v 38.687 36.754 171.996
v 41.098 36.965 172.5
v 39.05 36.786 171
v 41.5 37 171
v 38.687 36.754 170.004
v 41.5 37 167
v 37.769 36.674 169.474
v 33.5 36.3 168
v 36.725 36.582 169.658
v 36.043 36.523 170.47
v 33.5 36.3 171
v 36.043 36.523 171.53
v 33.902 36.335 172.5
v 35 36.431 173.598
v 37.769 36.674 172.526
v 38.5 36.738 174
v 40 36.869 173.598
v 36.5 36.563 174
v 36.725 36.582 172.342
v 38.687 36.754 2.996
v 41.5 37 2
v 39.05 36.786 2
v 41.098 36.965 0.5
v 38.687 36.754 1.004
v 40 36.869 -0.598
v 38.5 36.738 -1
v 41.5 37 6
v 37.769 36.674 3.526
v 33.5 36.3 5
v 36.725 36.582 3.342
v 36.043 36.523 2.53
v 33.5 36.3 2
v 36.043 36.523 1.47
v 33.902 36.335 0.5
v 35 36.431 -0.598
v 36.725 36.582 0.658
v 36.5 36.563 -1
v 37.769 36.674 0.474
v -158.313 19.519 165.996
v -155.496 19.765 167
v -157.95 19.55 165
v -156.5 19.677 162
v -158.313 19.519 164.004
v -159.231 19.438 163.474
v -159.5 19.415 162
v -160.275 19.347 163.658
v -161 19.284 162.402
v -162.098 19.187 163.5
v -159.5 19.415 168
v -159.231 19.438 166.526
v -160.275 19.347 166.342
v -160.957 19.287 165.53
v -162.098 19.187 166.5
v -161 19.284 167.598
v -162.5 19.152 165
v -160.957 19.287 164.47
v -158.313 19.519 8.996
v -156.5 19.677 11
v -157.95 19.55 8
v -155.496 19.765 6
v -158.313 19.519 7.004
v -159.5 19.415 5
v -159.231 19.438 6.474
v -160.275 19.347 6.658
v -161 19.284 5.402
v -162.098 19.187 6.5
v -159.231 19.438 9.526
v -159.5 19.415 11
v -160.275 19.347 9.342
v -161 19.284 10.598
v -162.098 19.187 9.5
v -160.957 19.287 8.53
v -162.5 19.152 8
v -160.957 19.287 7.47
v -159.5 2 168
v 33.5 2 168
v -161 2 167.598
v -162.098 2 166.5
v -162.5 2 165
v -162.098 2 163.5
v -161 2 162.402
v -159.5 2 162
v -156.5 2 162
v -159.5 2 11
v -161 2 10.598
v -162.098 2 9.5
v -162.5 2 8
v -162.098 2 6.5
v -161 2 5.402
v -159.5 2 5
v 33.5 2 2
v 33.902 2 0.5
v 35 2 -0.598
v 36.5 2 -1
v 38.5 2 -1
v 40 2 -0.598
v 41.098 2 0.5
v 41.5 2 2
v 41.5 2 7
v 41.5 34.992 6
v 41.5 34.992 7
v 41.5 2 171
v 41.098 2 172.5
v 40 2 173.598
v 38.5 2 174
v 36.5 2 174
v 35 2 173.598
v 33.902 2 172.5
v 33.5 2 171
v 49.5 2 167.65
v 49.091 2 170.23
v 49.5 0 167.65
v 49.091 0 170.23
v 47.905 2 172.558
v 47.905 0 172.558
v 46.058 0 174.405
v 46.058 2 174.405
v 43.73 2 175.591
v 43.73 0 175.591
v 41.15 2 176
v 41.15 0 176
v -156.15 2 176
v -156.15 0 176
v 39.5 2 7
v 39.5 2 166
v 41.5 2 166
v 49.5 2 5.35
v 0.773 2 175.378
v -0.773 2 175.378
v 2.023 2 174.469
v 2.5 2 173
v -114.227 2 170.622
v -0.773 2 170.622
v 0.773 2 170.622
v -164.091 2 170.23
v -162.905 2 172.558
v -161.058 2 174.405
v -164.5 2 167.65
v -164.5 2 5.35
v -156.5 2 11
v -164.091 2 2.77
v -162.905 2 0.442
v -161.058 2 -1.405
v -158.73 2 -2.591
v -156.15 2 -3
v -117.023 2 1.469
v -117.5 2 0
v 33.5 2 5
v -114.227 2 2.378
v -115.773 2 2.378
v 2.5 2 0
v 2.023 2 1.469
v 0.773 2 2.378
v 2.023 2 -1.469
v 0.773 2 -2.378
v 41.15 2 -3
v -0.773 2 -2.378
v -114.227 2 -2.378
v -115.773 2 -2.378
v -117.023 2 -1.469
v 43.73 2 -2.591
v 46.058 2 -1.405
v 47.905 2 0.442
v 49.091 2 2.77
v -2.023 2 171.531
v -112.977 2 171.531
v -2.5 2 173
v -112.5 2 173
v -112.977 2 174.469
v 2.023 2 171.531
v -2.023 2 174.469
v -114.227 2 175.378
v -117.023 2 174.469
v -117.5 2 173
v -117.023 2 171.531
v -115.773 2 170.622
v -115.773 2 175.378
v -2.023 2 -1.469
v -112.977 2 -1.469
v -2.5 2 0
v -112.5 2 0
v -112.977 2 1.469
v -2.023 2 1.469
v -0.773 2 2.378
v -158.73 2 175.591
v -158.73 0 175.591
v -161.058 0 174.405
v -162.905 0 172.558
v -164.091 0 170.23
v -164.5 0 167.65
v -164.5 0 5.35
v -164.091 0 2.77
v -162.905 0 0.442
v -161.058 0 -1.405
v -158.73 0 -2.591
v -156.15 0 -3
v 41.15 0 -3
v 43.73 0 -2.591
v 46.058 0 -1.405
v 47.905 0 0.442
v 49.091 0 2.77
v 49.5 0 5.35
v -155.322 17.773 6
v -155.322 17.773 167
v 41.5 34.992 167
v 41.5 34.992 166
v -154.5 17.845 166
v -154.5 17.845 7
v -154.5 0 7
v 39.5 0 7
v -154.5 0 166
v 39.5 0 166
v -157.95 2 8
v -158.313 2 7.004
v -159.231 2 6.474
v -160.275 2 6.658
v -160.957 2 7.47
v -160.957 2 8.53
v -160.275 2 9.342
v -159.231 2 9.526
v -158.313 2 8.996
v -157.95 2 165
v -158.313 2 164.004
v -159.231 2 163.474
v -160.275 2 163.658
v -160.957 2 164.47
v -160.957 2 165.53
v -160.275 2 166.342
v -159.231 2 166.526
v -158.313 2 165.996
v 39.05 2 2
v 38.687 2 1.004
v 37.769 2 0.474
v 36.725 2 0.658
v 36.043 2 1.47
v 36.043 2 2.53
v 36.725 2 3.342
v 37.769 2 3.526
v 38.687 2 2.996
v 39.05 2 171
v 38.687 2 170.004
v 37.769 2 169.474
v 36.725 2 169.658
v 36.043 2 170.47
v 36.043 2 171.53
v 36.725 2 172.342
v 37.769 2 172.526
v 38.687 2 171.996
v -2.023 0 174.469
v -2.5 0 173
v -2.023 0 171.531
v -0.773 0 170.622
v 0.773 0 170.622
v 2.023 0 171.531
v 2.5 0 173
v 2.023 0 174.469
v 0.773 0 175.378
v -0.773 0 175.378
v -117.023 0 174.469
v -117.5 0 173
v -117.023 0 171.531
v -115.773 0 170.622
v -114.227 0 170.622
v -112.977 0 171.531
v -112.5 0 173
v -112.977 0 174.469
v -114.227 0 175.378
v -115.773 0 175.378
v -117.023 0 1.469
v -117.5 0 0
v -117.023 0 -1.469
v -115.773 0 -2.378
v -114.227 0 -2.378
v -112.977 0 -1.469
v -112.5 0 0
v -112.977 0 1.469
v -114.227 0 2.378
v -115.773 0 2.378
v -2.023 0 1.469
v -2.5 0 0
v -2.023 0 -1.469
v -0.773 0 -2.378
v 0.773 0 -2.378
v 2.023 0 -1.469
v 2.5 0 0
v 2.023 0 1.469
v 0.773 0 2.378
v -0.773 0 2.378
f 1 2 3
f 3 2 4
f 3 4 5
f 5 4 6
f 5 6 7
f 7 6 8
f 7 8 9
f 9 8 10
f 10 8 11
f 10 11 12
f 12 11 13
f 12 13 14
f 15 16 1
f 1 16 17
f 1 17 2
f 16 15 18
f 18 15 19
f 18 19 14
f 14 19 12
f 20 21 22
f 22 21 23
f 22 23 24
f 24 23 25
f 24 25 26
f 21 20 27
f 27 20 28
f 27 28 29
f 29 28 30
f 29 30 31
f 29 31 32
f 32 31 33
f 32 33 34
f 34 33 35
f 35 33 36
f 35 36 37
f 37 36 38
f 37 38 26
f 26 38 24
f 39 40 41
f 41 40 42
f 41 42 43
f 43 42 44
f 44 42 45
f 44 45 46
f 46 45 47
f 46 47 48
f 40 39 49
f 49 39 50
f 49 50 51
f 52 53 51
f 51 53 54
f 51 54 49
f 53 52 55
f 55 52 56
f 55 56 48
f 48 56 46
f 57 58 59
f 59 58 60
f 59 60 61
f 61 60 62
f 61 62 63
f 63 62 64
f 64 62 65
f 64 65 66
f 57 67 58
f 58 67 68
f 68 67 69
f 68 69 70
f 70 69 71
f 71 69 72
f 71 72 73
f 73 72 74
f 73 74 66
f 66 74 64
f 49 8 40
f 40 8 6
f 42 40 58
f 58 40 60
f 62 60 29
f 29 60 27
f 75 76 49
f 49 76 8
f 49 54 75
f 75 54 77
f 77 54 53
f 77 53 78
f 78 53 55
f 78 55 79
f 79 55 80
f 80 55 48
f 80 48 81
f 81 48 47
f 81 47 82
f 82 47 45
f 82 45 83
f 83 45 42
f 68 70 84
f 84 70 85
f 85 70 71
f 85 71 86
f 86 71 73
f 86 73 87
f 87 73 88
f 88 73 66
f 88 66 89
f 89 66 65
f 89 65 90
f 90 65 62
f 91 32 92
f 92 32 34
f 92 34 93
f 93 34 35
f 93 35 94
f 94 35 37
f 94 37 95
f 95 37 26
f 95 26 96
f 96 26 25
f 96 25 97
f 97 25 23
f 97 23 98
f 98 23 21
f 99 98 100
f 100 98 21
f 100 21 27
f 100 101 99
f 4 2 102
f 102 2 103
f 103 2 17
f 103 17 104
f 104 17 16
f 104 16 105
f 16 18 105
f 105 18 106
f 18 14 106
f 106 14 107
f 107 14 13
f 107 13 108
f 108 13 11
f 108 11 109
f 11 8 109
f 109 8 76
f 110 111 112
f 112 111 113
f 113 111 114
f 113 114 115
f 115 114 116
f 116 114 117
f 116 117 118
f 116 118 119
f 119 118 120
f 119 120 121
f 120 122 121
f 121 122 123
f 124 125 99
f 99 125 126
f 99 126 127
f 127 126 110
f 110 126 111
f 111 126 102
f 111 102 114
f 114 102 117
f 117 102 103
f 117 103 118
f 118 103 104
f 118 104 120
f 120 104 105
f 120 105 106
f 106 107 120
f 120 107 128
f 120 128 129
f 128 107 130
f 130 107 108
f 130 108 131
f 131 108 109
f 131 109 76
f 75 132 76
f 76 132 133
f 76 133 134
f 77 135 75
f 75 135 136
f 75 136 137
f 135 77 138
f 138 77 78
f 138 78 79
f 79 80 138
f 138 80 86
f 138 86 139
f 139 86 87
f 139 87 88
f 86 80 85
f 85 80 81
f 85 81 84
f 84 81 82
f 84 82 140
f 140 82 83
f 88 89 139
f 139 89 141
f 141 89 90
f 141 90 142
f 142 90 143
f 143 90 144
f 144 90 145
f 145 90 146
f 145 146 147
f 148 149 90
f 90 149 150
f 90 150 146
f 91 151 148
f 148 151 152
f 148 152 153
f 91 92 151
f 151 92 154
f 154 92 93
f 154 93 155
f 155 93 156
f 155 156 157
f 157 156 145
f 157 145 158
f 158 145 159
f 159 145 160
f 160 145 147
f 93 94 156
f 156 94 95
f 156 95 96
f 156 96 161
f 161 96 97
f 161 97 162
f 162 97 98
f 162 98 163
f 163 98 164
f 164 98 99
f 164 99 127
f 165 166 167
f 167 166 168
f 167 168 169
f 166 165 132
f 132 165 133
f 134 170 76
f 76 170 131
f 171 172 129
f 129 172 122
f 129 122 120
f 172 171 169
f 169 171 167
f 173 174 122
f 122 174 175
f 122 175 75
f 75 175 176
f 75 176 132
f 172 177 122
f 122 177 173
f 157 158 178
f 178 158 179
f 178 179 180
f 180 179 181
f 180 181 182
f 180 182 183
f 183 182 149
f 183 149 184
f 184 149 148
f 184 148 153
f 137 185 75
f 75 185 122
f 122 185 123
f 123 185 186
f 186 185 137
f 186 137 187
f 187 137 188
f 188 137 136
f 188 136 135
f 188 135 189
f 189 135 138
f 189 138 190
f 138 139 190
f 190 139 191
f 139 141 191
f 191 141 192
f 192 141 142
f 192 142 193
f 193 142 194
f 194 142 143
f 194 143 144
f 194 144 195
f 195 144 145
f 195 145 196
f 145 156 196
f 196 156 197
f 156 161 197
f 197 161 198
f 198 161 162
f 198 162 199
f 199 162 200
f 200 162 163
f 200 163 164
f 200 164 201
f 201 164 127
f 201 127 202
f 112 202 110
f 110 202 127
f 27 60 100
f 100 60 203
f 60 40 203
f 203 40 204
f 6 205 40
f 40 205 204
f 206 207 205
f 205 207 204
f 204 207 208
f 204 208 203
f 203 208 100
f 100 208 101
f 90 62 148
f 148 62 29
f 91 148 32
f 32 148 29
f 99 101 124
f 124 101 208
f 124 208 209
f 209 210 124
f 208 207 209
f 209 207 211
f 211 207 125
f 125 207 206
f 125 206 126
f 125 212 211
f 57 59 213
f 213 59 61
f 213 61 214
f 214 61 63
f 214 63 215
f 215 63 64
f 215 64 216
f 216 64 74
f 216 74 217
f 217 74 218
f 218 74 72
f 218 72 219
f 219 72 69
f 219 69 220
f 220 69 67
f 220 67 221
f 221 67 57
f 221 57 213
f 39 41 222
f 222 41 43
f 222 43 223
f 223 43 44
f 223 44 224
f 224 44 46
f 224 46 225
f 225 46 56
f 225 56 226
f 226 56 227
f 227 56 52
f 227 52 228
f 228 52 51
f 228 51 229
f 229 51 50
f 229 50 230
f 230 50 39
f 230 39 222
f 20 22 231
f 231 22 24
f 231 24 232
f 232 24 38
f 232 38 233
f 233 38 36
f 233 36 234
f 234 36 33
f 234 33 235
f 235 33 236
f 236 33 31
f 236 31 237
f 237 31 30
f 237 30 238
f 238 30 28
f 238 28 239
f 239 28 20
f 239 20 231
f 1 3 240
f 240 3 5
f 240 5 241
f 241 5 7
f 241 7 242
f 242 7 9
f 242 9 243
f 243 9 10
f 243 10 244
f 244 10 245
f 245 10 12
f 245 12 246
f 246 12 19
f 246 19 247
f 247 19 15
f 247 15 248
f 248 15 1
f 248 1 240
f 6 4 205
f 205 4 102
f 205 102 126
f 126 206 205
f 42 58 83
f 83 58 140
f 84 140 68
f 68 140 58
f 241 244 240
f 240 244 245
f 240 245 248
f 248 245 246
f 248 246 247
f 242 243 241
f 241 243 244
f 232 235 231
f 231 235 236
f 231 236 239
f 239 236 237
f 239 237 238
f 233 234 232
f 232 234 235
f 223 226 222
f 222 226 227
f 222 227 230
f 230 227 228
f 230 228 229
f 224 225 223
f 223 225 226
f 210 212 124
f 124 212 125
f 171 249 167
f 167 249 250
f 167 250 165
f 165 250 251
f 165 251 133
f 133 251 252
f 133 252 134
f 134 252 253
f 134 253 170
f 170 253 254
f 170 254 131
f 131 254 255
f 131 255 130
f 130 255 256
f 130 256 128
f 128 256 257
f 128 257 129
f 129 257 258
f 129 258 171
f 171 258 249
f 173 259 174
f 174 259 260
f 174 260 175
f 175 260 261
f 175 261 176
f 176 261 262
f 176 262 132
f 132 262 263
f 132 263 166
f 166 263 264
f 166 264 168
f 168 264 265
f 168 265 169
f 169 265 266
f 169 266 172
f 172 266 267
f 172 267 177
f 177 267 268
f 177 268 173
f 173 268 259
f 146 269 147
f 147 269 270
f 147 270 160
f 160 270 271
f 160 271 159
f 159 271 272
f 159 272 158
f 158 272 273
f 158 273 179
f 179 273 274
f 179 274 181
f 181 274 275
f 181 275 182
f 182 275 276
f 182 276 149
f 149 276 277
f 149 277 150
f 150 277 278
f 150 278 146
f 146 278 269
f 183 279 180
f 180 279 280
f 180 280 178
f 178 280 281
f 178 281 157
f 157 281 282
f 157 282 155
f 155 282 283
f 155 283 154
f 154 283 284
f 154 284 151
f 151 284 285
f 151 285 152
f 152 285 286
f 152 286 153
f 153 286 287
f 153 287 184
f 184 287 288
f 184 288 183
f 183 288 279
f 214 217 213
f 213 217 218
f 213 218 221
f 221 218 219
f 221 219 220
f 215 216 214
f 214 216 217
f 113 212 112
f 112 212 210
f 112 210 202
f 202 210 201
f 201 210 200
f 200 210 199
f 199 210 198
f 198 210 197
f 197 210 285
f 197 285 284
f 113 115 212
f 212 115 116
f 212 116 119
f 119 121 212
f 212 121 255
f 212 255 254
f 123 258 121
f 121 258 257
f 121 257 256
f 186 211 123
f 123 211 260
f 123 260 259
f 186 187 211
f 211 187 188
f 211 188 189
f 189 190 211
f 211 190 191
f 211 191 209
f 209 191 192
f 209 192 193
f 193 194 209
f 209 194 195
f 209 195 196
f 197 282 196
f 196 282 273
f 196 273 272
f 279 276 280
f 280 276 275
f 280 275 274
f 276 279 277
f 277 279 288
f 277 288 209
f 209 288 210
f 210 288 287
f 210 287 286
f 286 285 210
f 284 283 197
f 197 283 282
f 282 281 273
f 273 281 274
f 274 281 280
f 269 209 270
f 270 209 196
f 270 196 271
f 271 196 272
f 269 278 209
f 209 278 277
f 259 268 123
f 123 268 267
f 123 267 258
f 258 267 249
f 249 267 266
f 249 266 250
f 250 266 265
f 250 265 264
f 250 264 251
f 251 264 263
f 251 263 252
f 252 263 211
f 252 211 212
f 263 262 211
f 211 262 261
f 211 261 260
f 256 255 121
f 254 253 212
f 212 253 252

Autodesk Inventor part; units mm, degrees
ref_plane "YZ Plane" through (0, 0, 0) normal (1, 0, 0) x (0, 1, 0)
ref_plane "XZ Plane" through (0, 0, 0) normal (0, 1, 0) x (-1, 0, 0)
ref_plane "XY Plane" through (0, 0, 0) normal (0, 0, 1) x (1, 0, 0)
sketch "panelconnect" plane through (0, 0, 0) normal (0, 1, 0) x (-1, 0, 0)
  circle A0 centre (0, 0) radius 2.5
  circle A1 centre (115, 0) radius 2.5
  circle A2 centre (115, 173) radius 2.5
  circle A3 centre (0, 173) radius 2.5
  line L0 (57.2025, 240.8064) -> (94.1768, 240.8064)
  line L1 (94.1768, 240.8064) -> (82.9725, 250.4701)
  line L2 (82.9725, 250.4701) -> (82.9725, 230.5824)
  line L3 (82.9725, 230.5824) -> (94.1768, 240.8064)
  line L4 (172.5, 184) -> (-57.5, 184)
  line L5 (-57.5, 184) -> (-57.5, -11)
  line L6 (-57.5, -11) -> (172.5, -11)
  line L7 (172.5, -11) -> (172.5, 184)
  line L8 (-39.5, 166) -> (154.5, 166)
  line L9 (154.5, 166) -> (154.5, 7)
  line L10 (154.5, 7) -> (-39.5, 7)
  line L11 (-39.5, 7) -> (-39.5, 166)
  line L12 (164.5, 176) -> (-49.5, 176)
  line L13 (-49.5, 176) -> (-49.5, -3)
  line L14 (-49.5, -3) -> (164.5, -3)
  line L15 (164.5, -3) -> (164.5, 176)
  dimension "d0" = 5
  dimension "d1" = 5
  dimension "d3" = 5
  dimension "d7" = 5
  dimension "d11" = 195
  dimension "d14" = 18
  dimension "d15" = 10
  dimension "d54" = 115
  dimension "d55" = 57.5
  dimension "d56" = 57.5
  dimension "d57" = 230
  dimension "d58" = 173
  dimension "d61" = 11
  dimension "d62" = 57.5
  dimension "d64" = 57.5
  dimension "d65" = 11
extrude "panelExtrude" add sketch "panelconnect" along normal blind 2 contours L15 L14 L13 L12
sketch "Sketch2" plane through (0, 2, 0) normal (0, 1, 0) x (1, 0, 0)
  line L0 (39.5, -7) -> (39.5, -166) projected
  line L1 (-154.5, -166) -> (39.5, -166)
  line L2 (39.5, -166) -> (39.5, -7)
  line L3 (39.5, -7) -> (-154.5, -7)
  line L4 (-154.5, -7) -> (-154.5, -166)
  line L5 (41.5, -168) -> (-156.5, -168)
  line L6 (-156.5, -168) -> (-156.5, -5)
  line L7 (-156.5, -5) -> (41.5, -5)
  line L8 (41.5, -5) -> (41.5, -168)
  line L9 (39.5, -7) -> (64.2045, -7)
  line L10 (39.5, -166) -> (-154.5, -166) projected
  line L11 (39.5, -166) -> (69.5542, -166)
  line L12 (-156.5, -5) -> (-156.5, -168)
  line L13 (41.5, -168) -> (33.5, -168)
  line L14 (33.5, -168) -> (33.5, -174)
  line L15 (33.5, -174) -> (41.5, -174)
  line L16 (41.5, -174) -> (41.5, -168)
  line L17 (41.5, -5) -> (33.5, -5)
  line L18 (33.5, -5) -> (33.5, 1)
  line L19 (33.5, 1) -> (41.5, 1)
  line L20 (41.5, 1) -> (41.5, -5)
  circle A0 centre (37.5, -171) radius 1.55
  circle A1 centre (37.5, -2) radius 1.55
  line L21 (-156.5, -168) -> (-162.5, -168)
  line L22 (-162.5, -168) -> (-162.5, -162)
  line L23 (-162.5, -162) -> (-156.5, -162)
  line L24 (-156.5, -162) -> (-156.5, -168)
  line L25 (-156.5, -5) -> (-162.5, -5)
  line L26 (-162.5, -5) -> (-162.5, -11)
  line L27 (-162.5, -11) -> (-156.5, -11)
  line L28 (-156.5, -11) -> (-156.5, -5)
  circle A2 centre (-159.5, -165) radius 1.55
  circle A3 centre (-159.5, -8) radius 1.55
  point P0 (0, 0)
  point P1 (41.5, -166)
  point P2 (41.5, -7)
  point P3 (-156.5, -5)
  dimension "d18" = 2
  dimension "d28" = 8
  dimension "d29" = 6
  dimension "d30" = 6
  dimension "d34" = 3.1
  dimension "d35" = 3
  dimension "d36" = 4
  dimension "d37" = 3.1
  dimension "d38" = 3
  dimension "d39" = 4
  dimension "d42" = 6
  dimension "d43" = 6
  dimension "d44" = 6
  dimension "d45" = 6
  dimension "d46" = 3.1
  dimension "d47" = 3
  dimension "d48" = 3
  dimension "d49" = 3.1
  dimension "d50" = 3
  dimension "d51" = 3
extrude "bodyExtrude" add sketch "Sketch2" along normal blind 35 contours L3 L4 L1 L11 L8 L5 L6 L7 L9 | L7 L18 L19 L20 | L16 L15 L14 L5 | L6 L27 L26 L25 | L21 L22 L23 L6
sketch "Sketch3" plane through (-161.5, 2, 168) normal (0, 0, 1) x (1, 0, 0)
  line L0 (203, 0) -> (203, 35) projected
  line L1 (203, 35) -> (-34.1829, 14.2492)
  line L2 (203, 35) -> (441.0889, 35) construction
  line L3 (7, 35) -> (203, 35) projected
  line L4 (-1, 0) -> (-1, 35) projected
  line L5 (-1, 17.5) -> (-1, 35)
  line L6 (203, 35) -> (195, 35) projected
  line L7 (-1, 35) -> (203, 35)
  point P0 (161.5, -2)
  point P1 (-1, 17.1523)
  dimension "d22" = 175
extrude "baseAngle" cut sketch "Sketch3" against normal mid plane 398.4625
sketch "Sketch4" plane through (-161.5, 19.2398, 168) normal (-0.0872, 0.9962, 0) x (0.9962, 0.0872, 0)
  line L0 (7.0267, 161) -> (7.0267, 2) projected
  line L1 (7.0267, 2) -> (203.6093, 2)
  line L2 (203.6093, 2) -> (203.6093, 161)
  line L3 (203.6093, 161) -> (7.0267, 161)
  line L4 (7.0267, 161) -> (7.0267, 2)
  line L5 (6.0267, 162) -> (204.6093, 162)
  line L6 (204.6093, 162) -> (204.6093, 1)
  line L7 (204.6093, 1) -> (6.0267, 1)
  line L8 (6.0267, 1) -> (6.0267, 162)
  point P0 (159.2086, 168)
  point P1 (7.0267, 21.4312)
  dimension "d25" = 1
extrude "bodyDetent" cut sketch "Sketch4" against normal blind 2 contours L3 L2 L1 L0 | L5 L6 L7 L8
fillet "Fillet1" radius 8.35 4 edges at (49.5, 1, -3) (-164.5, 1, -3) (-164.5, 1, 176) (49.5, 1, 176)
fillet "Fillet2" radius 3 8 edges at (33.5, 19.15, 174) (41.5, 19.5, 174) (41.5, 19.5, -1) (33.5, 19.15, -1) (-162.5, 10.5762, 11) (-162.5, 10.5762, 5) (-162.5, 10.5762, 162) (-162.5, 10.5762, 168)
properties part number "mainBody"
